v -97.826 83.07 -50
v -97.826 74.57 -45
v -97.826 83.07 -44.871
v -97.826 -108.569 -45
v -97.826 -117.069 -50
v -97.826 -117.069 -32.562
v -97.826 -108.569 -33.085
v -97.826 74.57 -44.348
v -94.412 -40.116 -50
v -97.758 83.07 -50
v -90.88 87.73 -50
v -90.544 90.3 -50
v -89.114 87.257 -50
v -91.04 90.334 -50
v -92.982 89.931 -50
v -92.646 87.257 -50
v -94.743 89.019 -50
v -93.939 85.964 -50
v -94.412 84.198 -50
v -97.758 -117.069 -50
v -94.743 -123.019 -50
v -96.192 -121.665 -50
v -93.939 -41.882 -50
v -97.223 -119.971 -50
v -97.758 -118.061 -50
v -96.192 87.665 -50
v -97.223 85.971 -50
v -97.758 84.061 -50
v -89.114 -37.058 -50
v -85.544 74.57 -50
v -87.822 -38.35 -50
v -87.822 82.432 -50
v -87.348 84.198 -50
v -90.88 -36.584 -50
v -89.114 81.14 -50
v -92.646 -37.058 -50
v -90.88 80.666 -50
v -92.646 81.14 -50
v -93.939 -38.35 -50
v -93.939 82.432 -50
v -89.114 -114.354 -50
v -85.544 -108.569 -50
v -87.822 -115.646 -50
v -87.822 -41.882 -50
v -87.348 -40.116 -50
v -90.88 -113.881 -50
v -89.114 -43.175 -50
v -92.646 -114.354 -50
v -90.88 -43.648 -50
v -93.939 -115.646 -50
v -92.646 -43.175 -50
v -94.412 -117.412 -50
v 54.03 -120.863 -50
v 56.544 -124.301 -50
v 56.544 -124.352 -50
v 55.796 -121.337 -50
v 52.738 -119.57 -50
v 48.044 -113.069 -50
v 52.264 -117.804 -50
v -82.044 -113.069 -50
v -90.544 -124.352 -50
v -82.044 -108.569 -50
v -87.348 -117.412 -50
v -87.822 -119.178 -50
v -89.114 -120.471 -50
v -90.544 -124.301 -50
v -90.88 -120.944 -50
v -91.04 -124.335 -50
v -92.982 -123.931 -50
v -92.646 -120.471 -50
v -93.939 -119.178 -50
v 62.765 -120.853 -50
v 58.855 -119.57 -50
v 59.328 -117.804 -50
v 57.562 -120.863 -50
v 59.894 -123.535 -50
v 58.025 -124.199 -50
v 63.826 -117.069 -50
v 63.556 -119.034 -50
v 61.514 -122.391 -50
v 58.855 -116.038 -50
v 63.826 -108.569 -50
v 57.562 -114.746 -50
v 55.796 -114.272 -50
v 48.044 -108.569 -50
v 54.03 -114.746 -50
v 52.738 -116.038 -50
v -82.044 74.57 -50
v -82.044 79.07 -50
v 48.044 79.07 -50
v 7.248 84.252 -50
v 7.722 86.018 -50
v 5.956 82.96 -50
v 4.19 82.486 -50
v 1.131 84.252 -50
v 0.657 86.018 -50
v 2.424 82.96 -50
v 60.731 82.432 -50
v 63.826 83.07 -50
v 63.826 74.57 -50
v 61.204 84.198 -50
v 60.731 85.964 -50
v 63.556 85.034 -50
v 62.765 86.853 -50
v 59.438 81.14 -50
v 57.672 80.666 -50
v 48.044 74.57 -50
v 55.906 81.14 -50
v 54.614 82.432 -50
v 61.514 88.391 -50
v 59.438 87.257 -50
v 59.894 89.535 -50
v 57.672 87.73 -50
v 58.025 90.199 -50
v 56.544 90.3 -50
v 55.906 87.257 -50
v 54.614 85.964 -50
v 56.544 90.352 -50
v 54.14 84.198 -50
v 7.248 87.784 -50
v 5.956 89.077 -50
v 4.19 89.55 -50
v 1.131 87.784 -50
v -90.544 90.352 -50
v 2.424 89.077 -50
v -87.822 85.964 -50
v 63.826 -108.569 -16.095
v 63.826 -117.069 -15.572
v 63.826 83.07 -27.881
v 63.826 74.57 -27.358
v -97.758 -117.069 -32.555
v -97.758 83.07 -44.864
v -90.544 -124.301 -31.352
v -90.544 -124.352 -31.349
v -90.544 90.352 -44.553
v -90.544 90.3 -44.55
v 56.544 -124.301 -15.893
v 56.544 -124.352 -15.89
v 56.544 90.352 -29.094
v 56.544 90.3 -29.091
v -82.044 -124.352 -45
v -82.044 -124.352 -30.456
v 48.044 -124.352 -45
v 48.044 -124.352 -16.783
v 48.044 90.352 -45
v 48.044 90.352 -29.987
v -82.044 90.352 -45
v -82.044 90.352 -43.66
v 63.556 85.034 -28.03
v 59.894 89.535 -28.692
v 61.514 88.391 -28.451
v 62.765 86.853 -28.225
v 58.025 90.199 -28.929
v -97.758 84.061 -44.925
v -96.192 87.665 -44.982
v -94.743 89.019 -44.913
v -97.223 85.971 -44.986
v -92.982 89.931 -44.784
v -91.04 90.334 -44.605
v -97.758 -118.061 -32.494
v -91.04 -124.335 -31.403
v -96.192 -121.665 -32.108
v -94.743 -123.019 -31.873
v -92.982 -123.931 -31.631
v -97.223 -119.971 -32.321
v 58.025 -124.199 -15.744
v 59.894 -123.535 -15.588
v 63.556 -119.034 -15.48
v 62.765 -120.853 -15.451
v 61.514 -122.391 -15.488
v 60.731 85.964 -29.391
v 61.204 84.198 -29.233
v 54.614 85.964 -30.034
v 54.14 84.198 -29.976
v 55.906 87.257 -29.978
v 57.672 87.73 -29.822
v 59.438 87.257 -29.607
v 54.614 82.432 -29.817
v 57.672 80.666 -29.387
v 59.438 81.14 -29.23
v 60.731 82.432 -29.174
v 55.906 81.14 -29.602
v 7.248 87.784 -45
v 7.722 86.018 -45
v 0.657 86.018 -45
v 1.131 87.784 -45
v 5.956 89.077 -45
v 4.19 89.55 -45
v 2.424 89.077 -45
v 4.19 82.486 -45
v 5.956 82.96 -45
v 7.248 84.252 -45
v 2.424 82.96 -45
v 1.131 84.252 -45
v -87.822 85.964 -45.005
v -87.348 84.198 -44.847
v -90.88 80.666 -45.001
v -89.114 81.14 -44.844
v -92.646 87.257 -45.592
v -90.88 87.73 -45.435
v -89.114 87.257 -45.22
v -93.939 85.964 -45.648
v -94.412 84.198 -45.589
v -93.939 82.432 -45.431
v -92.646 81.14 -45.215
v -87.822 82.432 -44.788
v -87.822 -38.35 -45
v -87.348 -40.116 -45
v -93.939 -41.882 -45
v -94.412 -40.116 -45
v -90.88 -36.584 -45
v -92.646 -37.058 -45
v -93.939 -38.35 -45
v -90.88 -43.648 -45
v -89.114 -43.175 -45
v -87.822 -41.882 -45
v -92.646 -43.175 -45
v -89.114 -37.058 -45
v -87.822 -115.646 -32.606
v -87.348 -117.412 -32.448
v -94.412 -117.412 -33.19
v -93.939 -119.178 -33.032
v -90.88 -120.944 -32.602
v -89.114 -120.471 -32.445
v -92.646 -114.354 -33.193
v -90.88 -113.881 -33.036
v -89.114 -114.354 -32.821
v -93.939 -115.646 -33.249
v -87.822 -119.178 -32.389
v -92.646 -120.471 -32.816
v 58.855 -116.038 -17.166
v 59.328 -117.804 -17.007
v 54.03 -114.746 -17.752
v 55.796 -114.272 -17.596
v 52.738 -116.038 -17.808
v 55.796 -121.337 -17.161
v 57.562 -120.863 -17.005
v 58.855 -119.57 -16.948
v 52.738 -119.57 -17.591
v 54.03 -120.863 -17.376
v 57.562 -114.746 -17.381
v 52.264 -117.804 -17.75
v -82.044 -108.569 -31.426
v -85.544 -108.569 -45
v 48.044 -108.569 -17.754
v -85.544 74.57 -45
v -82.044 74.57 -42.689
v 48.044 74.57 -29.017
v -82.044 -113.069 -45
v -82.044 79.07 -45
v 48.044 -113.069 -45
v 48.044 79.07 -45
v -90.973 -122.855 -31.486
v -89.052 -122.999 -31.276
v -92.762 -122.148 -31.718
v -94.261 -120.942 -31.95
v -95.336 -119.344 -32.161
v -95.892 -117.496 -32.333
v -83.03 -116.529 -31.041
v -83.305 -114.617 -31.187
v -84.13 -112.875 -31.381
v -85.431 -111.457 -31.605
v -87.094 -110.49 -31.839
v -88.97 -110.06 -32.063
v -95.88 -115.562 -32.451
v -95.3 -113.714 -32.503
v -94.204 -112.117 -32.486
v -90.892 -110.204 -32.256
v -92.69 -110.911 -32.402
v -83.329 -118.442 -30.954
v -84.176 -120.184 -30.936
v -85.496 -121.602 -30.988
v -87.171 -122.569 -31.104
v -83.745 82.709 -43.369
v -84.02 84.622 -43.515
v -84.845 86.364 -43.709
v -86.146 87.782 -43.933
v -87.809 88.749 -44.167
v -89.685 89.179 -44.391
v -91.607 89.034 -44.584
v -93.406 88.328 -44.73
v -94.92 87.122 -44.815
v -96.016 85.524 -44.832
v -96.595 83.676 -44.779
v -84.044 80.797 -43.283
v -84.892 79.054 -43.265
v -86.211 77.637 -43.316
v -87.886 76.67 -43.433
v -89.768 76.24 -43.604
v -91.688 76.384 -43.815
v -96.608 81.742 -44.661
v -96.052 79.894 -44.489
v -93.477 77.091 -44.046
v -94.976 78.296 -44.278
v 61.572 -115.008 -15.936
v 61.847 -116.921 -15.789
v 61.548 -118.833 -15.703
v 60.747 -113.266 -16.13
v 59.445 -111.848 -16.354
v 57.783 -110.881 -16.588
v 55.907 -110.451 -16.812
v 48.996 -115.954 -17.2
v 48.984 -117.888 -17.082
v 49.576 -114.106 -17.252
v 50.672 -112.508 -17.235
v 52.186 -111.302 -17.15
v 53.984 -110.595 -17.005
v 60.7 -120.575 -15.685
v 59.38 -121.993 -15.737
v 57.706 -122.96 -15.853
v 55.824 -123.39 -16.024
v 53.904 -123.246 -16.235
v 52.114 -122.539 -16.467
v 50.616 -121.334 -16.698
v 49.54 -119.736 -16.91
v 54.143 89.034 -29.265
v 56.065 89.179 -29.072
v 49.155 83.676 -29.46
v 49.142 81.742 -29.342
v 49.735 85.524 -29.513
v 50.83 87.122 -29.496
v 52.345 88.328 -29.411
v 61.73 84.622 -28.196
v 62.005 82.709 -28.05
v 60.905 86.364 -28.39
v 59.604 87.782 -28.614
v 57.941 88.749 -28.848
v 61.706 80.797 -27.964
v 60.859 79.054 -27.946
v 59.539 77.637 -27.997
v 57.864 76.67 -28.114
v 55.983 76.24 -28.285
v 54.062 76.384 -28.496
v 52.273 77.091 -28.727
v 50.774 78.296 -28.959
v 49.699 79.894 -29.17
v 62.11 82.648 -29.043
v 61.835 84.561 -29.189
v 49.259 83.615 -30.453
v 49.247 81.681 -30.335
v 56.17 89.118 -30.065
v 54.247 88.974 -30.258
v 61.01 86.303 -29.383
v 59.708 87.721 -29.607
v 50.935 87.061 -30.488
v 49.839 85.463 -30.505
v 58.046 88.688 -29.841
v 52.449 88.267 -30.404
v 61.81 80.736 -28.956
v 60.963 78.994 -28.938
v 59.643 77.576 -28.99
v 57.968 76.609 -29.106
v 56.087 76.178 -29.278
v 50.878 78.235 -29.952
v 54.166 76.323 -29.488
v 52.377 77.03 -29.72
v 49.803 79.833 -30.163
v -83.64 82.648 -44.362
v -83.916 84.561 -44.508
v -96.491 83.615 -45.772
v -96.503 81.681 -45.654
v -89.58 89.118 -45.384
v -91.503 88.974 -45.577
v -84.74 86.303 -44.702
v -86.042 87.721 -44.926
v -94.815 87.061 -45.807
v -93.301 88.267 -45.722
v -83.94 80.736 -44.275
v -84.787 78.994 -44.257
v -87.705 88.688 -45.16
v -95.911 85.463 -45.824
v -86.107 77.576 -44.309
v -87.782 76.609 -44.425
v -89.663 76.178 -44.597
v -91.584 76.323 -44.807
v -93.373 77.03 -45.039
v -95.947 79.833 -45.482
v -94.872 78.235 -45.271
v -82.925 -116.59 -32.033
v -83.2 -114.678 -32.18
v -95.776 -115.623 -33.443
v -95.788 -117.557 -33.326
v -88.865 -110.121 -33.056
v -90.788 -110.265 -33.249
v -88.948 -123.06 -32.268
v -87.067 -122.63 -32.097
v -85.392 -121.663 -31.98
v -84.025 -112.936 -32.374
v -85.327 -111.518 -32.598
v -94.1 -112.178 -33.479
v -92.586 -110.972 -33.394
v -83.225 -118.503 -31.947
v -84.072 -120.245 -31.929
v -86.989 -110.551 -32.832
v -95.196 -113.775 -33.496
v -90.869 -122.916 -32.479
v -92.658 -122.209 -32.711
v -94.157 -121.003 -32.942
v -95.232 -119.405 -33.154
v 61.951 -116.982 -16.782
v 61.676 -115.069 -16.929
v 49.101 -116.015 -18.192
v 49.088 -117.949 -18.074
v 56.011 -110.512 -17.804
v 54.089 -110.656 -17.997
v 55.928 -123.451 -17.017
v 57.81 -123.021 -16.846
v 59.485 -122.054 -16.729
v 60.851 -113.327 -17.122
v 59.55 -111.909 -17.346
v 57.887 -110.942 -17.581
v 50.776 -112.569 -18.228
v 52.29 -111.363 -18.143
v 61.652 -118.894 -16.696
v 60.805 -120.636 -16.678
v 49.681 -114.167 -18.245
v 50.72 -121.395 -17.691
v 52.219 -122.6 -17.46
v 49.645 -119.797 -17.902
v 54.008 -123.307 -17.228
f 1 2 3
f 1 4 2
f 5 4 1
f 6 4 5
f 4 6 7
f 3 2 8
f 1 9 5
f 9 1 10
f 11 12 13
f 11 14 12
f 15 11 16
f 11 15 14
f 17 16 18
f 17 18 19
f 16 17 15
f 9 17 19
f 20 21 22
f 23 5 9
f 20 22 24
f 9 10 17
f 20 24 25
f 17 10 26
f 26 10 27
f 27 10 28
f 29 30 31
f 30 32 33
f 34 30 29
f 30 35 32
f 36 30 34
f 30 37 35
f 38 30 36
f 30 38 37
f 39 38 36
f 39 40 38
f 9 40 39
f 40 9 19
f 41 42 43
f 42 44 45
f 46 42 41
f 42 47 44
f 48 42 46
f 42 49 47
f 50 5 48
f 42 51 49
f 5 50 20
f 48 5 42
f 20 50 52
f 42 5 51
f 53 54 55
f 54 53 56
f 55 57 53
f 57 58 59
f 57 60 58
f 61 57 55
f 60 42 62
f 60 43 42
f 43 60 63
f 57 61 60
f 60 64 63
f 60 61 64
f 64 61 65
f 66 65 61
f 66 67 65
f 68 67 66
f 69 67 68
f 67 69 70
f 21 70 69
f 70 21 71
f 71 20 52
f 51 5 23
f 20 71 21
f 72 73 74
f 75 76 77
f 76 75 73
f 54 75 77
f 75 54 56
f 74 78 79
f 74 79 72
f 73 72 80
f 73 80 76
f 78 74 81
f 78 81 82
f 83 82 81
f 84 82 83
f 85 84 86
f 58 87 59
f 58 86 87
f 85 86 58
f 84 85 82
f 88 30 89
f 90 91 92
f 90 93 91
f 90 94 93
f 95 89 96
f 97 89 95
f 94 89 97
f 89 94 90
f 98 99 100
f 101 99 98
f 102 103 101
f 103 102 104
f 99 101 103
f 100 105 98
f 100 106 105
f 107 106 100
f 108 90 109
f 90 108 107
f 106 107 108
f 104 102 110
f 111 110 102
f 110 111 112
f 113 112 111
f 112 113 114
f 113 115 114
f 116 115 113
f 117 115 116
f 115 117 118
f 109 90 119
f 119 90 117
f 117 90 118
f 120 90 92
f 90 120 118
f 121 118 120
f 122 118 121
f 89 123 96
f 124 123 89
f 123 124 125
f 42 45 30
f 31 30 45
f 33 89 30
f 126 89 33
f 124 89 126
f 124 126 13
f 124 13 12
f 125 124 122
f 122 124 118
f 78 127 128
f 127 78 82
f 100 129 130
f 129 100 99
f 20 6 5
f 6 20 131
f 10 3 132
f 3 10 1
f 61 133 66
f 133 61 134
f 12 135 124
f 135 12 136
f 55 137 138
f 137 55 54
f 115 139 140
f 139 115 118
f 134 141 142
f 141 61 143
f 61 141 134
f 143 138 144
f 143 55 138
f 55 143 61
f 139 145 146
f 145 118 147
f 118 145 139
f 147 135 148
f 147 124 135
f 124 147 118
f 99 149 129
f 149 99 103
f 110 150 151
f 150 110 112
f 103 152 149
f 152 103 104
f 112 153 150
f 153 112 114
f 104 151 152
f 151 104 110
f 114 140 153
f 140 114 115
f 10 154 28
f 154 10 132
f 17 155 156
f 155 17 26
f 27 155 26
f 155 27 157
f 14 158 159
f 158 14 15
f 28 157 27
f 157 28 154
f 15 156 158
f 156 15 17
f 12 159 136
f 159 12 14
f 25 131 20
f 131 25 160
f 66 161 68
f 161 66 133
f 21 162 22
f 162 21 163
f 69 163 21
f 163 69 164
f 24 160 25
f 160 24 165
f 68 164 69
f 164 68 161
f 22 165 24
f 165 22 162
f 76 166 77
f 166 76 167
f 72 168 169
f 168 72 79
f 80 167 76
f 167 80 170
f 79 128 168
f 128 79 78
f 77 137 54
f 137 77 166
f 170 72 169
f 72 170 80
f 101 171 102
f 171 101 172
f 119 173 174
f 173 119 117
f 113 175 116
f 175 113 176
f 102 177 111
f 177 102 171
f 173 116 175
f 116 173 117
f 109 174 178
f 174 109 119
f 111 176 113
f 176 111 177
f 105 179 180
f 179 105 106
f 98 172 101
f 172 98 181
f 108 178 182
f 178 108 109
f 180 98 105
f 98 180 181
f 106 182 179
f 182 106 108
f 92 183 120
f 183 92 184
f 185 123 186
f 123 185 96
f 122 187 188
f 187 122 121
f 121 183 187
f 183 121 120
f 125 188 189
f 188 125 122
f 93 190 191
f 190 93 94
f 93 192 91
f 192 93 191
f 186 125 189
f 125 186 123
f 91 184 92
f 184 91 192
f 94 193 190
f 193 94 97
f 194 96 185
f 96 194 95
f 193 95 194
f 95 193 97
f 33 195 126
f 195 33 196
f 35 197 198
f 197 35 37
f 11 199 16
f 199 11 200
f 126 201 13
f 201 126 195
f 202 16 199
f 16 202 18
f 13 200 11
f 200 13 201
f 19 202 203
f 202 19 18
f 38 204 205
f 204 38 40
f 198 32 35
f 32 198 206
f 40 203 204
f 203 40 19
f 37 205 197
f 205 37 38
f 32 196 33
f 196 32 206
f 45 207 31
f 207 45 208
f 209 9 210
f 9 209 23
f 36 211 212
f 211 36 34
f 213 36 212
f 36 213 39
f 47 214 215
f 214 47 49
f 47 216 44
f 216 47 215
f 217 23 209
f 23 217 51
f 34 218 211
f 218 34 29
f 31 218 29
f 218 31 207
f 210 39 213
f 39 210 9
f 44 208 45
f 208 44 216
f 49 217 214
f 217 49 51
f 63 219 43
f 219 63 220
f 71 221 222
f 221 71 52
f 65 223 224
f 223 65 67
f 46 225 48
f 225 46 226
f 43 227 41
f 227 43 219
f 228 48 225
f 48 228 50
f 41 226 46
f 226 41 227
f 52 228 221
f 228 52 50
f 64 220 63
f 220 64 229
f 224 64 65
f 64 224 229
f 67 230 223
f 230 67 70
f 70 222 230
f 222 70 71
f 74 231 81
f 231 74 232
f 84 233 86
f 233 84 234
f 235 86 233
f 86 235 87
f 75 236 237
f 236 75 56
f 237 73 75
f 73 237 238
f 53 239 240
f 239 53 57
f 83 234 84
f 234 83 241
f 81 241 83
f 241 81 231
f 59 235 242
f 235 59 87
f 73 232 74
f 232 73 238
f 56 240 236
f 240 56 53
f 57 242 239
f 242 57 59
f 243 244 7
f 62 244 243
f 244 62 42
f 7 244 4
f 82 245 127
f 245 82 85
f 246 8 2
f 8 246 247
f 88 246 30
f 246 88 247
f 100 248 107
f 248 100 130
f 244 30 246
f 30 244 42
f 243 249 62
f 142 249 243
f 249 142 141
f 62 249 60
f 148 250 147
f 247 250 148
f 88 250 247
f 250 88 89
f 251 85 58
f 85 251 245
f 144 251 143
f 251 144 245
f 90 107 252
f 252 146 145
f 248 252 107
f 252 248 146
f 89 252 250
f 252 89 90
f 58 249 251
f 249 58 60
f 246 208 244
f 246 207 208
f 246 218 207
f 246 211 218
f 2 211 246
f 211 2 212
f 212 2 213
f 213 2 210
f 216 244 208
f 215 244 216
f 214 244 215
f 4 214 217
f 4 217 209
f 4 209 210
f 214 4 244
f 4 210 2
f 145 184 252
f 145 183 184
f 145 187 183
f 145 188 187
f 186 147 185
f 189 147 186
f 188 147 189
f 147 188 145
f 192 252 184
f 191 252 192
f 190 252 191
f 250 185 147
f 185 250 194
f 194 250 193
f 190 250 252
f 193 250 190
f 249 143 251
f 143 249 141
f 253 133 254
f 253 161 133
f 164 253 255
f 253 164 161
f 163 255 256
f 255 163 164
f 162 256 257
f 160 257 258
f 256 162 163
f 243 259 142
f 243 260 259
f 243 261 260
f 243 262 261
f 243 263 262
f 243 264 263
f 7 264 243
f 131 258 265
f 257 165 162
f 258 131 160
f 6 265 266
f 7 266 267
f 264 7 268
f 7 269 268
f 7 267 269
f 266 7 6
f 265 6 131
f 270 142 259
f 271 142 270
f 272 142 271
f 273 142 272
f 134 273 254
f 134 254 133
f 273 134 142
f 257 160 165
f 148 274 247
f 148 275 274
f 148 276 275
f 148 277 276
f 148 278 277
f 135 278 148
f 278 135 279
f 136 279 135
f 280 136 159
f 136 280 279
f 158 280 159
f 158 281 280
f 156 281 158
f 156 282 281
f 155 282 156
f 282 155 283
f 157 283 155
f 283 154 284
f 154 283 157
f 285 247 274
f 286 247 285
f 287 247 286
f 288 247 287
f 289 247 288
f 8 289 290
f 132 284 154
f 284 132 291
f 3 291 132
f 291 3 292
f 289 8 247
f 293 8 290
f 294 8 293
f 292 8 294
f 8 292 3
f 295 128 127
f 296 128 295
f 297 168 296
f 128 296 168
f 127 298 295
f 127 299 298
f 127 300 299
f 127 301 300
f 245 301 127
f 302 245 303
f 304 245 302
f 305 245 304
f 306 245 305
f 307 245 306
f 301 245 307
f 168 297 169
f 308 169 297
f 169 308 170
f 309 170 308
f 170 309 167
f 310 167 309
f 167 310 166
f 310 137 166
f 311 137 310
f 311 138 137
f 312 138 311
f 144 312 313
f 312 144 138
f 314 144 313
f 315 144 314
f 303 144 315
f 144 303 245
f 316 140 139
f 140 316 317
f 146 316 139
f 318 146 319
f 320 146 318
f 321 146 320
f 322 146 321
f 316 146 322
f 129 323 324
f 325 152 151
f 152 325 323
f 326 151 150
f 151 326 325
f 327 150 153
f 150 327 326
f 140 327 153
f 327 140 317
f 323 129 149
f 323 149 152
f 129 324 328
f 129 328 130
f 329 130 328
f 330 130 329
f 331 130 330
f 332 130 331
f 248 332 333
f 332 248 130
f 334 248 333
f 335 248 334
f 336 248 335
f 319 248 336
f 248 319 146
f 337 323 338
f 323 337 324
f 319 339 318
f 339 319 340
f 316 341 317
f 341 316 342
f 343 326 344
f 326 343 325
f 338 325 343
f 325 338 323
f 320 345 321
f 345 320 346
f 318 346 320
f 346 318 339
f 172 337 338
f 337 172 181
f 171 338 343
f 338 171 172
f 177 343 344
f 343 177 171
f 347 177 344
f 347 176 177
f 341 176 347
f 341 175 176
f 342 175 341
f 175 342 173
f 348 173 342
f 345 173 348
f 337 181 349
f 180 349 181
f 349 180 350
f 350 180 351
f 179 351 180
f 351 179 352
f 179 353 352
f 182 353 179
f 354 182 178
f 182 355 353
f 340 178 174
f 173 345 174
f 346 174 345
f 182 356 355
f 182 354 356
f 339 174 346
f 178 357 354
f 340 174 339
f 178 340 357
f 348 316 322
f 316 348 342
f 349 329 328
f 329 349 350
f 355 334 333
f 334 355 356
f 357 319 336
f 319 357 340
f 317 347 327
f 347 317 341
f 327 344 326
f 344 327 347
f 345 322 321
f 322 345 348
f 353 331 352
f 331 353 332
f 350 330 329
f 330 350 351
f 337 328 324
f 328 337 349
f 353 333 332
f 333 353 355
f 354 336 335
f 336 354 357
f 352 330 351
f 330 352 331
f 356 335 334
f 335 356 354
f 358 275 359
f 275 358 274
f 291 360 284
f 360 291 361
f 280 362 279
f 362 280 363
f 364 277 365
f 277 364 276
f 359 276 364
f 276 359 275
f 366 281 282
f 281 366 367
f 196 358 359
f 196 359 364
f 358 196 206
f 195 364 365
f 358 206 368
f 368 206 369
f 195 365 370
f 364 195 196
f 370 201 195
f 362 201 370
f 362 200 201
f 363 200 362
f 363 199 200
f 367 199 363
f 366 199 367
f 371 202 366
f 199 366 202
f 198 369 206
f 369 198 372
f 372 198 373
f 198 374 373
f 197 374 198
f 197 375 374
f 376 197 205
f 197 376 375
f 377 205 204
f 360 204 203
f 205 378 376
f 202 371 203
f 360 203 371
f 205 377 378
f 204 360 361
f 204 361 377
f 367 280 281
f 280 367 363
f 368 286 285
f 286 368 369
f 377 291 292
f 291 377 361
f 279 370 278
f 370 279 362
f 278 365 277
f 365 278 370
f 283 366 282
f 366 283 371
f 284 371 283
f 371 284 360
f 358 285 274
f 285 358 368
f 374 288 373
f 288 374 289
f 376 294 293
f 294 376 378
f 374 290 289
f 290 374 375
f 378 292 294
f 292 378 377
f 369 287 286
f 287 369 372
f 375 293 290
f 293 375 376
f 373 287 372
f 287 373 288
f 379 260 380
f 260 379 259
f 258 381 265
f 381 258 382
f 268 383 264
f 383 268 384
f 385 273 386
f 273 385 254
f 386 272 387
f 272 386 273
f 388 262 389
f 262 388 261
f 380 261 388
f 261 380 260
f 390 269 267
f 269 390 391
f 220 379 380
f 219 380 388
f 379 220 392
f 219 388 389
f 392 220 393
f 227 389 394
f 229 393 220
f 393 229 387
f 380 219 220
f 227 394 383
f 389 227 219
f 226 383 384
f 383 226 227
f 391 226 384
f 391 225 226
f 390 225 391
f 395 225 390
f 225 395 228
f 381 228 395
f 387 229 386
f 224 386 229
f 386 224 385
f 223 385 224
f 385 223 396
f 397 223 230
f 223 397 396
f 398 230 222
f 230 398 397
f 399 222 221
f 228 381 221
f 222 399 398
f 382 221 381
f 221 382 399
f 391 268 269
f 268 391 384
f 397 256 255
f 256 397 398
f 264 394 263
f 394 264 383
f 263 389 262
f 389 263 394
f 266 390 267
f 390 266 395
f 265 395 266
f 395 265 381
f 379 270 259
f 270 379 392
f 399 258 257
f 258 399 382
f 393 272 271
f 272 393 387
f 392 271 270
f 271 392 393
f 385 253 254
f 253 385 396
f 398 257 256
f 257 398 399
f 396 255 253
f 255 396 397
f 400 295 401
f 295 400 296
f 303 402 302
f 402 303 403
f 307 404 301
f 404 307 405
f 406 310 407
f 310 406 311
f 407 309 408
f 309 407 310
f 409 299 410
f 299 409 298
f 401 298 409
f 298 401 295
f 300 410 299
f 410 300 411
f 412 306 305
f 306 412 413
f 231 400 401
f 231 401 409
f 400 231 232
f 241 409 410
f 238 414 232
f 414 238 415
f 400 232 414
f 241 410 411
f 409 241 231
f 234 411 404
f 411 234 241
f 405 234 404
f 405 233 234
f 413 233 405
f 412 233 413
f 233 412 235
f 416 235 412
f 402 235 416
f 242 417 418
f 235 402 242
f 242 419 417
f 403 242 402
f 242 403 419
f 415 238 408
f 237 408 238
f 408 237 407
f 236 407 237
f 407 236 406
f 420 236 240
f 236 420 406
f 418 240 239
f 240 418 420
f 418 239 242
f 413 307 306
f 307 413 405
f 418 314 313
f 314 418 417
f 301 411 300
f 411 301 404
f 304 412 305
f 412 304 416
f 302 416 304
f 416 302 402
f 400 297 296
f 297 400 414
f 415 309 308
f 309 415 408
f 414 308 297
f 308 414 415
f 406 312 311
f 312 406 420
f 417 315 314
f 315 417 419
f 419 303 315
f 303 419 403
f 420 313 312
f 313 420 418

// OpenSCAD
translate ([-17,-17,0]) {
  mirror ([1,0,0]) {
    rotate (a=180.0, v=[0,1,0]) {
      rotate (a=6.0, v=[0,1,0]) {
        rotate (a=3.5, v=[1,0,0]) {
          difference () {
            rotate (a=-3.5, v=[1,0,0]) {
              rotate (a=-6.0, v=[0,1,0]) {
                difference () {
                  translate ([0,0,25]) {
                    union () {
                      cube([161.65099999999998, 200.139, 50], center=true);
                      cube([147.087, 214.703, 50], center=true);
                      translate ([73.5435,100.0695,0]) {
                        cylinder (h=50, r=7.282, center=true);
                      }
                      translate ([-73.5435,100.0695,0]) {
                        cylinder (h=50, r=7.282, center=true);
                      }
                      translate ([-73.5435,-100.0695,0]) {
                        cylinder (h=50, r=7.282, center=true);
                      }
                      translate ([73.5435,-100.0695,0]) {
                        cylinder (h=50, r=7.282, center=true);
                      }
                    }
                  }
                  translate ([74.6725,101.19850000000001,0]) {
                    cylinder (h=250, r=3.532, center=true);
                  }
                  translate ([21.189500000000002,103.0185,0]) {
                    cylinder (h=250, r=3.532, center=true);
                  }
                  translate ([-73.8805,101.19850000000001,0]) {
                    cylinder (h=250, r=3.532, center=true);
                  }
                  translate ([-73.8805,-23.116499999999988,0]) {
                    cylinder (h=250, r=3.532, center=true);
                  }
                  translate ([6.525499999999994,-26.522499999999994,0]) {
                    cylinder (h=250, r=3.532, center=true);
                  }
                  translate ([-73.8805,-100.41249999999998,0]) {
                    cylinder (h=250, r=3.532, center=true);
                  }
                  translate ([72.7965,-100.80449999999998,0]) {
                    cylinder (h=250, r=3.532, center=true);
                  }
                  translate ([0,0,25]) {
                    cube([130.087, 183.139, 60], center=true);
                  }
                  translate ([0,0,25]) {
                    cube([137.087, 183.139, 60], center=true);
                  }
                  translate ([0,0,25]) {
                    cube([130.087, 192.139, 60], center=true);
                  }
                  translate ([20,0,25]) {
                    cube([137.087, 183.139, 60], center=true);
                  }
                  translate ([0,0,15]) {
                    cube([166.65099999999998, 183.139, 60], center=true);
                  }
                  translate ([0,0,15]) {
                    cube([130.087, 219.703, 60], center=true);
                  }
                }
              }
            }
            translate ([0,0,-20]) {
              union () {
                cube([1000, 1000, 100], center=true);
                translate ([72.6725,98.19850000000001,0]) {
                  translate ([-3.532,3.532,1]) {
                    cylinder (h=100, r=6.5, center=true);
                  }
                }
                translate ([-73.8805,98.19850000000001,0]) {
                  translate ([-3.532,3.532,1]) {
                    cylinder (h=100, r=6.5, center=true);
                  }
                }
                translate ([-71.8805,-101.41249999999998,0]) {
                  translate ([-3.532,3.532,1]) {
                    cylinder (h=100, r=6.5, center=true);
                  }
                }
                translate ([73.7965,-101.80449999999998,0]) {
                  translate ([-3.532,3.532,1]) {
                    cylinder (h=100, r=6.5, center=true);
                  }
                }
              }
            }
          }
        }
      }
    }
  }
}
